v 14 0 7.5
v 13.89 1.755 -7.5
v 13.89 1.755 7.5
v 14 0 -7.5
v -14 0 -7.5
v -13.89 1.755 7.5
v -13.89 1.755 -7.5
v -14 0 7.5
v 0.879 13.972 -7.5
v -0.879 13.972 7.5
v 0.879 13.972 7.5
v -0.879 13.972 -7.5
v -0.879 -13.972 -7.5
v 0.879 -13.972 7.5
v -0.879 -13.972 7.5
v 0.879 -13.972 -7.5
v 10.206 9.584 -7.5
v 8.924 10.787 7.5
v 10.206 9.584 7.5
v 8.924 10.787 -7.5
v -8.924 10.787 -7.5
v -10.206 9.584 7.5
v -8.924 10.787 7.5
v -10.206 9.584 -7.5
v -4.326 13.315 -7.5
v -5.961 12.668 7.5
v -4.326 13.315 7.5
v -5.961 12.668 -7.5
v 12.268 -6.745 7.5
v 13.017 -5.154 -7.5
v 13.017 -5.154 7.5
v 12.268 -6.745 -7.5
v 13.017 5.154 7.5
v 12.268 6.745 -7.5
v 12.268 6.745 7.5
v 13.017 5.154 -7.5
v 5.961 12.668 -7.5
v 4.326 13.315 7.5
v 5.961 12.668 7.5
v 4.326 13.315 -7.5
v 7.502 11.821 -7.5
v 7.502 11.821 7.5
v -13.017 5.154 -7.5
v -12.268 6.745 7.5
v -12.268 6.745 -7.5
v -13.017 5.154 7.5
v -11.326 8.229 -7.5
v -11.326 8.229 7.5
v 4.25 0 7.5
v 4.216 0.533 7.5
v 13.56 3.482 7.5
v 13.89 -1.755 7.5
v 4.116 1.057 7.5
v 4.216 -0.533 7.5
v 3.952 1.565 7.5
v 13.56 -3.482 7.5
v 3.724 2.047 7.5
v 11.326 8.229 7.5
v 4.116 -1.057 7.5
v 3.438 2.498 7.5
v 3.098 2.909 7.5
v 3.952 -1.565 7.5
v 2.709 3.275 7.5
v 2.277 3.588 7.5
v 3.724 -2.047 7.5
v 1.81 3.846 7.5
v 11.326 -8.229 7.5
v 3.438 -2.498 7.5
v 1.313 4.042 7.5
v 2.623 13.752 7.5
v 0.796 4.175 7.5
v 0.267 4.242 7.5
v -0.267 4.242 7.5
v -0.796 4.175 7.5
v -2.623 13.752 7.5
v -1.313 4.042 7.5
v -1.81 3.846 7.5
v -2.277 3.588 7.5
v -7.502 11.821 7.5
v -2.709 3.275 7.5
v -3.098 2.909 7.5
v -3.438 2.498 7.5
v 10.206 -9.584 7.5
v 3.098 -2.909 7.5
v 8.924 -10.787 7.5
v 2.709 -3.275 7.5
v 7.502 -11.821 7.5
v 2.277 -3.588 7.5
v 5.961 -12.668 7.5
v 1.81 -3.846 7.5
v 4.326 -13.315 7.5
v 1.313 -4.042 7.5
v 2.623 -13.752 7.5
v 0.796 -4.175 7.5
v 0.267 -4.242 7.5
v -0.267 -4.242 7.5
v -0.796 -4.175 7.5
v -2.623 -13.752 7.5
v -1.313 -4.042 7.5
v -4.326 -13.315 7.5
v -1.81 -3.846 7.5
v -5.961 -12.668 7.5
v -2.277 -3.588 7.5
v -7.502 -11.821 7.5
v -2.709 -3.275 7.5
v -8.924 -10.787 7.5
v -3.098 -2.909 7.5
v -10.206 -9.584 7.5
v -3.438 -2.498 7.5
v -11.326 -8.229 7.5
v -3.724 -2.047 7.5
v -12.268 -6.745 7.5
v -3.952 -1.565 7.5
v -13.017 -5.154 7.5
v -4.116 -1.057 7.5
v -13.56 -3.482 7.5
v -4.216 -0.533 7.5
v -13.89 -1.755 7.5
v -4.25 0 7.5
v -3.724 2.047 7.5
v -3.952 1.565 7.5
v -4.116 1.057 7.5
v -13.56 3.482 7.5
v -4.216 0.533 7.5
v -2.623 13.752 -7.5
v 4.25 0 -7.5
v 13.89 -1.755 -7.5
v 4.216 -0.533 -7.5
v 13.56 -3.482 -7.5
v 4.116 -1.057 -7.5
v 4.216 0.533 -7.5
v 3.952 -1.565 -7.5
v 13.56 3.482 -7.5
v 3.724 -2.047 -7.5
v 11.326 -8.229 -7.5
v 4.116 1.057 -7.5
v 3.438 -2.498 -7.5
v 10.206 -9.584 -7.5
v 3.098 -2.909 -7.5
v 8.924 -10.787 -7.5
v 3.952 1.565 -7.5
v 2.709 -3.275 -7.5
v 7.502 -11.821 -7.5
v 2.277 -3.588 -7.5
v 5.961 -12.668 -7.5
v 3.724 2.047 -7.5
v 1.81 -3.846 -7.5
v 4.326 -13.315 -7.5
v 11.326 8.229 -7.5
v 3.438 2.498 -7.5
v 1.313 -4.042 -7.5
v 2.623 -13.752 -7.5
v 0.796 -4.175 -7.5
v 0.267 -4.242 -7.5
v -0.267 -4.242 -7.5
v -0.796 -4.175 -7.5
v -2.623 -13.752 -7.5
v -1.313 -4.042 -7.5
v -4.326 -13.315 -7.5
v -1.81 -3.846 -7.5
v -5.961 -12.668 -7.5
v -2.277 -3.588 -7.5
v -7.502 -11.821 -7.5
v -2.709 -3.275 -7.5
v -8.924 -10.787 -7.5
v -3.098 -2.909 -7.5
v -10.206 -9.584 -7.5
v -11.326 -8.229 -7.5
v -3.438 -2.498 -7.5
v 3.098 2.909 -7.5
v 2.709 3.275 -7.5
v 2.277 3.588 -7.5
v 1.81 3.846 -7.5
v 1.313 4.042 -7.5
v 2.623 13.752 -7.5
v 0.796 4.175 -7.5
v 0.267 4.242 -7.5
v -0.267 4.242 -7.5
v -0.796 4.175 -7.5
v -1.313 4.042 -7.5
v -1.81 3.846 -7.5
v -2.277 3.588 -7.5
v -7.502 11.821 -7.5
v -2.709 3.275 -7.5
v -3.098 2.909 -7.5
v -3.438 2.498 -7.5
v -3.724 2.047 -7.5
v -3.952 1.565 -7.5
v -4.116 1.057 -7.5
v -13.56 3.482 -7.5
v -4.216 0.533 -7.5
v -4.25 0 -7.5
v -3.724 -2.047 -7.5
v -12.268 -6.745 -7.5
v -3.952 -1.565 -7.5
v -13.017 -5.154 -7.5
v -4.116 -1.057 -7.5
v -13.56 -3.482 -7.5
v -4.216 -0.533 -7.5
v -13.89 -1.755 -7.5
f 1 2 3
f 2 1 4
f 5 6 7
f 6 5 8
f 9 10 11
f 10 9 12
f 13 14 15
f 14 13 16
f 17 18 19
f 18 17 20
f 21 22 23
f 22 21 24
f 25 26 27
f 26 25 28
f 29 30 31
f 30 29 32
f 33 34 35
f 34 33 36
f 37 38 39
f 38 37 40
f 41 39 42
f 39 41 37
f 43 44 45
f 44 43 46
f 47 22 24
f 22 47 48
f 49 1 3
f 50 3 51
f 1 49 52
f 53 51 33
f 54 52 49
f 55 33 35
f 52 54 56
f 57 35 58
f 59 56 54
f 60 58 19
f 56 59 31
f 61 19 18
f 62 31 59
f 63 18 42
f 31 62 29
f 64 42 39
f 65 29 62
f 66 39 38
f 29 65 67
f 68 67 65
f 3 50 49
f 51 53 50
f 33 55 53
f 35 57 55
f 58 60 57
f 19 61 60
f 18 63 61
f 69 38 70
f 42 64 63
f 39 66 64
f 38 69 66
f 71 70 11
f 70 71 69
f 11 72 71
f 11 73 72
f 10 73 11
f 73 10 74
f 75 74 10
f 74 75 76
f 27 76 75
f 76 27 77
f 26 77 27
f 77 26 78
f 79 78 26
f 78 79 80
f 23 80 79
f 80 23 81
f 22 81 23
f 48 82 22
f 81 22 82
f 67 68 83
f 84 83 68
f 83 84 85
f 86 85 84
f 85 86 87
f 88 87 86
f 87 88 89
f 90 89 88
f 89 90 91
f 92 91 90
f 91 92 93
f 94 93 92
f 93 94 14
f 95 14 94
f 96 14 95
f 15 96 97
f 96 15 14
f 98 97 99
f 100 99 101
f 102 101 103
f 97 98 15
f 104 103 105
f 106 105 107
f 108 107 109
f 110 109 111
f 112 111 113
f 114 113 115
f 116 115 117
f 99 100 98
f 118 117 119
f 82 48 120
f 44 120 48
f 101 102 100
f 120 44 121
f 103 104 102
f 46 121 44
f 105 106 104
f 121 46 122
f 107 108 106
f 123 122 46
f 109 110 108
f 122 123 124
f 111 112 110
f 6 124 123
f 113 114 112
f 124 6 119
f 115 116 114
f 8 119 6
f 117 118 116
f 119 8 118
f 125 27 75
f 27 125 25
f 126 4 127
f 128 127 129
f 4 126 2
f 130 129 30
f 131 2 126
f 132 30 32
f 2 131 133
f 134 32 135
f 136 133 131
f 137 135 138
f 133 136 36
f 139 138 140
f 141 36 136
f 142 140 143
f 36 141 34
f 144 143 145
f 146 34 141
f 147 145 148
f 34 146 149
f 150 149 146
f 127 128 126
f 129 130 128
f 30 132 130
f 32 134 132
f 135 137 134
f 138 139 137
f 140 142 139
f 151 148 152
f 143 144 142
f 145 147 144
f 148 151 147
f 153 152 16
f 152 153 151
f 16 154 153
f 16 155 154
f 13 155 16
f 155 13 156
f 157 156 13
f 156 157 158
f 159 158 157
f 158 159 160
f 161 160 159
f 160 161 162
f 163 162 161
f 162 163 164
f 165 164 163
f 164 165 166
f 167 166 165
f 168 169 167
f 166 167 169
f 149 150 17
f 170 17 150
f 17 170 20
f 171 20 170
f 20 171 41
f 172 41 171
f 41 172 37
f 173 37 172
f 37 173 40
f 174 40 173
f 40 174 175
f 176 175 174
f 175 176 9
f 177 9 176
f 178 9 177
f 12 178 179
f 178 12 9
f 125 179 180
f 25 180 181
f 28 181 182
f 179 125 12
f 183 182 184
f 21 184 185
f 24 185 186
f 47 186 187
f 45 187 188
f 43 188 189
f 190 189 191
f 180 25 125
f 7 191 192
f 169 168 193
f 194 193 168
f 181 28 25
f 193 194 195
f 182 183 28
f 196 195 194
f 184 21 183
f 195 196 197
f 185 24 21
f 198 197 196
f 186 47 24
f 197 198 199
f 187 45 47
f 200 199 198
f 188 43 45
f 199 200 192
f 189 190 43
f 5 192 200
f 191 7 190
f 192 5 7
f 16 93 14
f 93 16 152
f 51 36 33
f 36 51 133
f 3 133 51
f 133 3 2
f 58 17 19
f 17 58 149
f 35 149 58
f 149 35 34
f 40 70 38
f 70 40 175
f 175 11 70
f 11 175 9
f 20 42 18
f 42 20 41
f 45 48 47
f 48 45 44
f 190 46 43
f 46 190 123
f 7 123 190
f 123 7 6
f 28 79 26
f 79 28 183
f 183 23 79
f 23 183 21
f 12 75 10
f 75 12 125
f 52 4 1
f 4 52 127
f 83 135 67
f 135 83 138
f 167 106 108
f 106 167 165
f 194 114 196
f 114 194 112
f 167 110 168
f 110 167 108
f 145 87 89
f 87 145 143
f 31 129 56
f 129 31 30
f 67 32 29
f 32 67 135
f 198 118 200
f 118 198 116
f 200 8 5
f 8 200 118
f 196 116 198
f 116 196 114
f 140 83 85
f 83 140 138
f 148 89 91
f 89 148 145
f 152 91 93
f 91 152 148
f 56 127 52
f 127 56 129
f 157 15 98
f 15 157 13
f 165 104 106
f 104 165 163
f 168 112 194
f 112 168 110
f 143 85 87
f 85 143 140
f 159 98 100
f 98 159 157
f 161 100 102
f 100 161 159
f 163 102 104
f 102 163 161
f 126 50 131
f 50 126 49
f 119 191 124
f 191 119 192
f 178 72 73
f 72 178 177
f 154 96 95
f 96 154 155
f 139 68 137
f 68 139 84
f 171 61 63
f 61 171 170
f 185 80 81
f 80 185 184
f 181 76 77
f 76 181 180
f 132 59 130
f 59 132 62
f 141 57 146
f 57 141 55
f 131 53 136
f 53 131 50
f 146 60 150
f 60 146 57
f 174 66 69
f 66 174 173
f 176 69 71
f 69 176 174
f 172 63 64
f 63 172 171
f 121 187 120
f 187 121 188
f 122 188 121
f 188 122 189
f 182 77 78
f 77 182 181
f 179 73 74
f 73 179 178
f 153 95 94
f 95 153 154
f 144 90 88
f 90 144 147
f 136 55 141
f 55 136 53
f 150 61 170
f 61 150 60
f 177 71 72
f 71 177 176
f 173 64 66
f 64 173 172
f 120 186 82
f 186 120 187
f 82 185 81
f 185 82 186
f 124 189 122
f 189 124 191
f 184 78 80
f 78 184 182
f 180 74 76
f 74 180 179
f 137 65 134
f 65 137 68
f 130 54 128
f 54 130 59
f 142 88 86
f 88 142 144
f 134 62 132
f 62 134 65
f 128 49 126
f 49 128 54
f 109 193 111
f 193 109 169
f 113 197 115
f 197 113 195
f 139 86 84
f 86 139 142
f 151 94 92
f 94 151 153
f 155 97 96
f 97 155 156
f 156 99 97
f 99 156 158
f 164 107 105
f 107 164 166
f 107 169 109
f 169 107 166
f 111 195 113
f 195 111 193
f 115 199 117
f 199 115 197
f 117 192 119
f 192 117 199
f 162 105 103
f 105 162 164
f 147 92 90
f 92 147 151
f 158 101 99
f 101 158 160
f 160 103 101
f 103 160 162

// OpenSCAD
$fn = 50;


difference() {
	union() {
		translate(v = [0, 0, -7.5000000000]) {
			cylinder(h = 15, r = 14.0000000000);
		}
	}
	union() {
		translate(v = [0, 0, -100.0000000000]) {
			cylinder(h = 200, r = 4.2500000000);
		}
	}
}
